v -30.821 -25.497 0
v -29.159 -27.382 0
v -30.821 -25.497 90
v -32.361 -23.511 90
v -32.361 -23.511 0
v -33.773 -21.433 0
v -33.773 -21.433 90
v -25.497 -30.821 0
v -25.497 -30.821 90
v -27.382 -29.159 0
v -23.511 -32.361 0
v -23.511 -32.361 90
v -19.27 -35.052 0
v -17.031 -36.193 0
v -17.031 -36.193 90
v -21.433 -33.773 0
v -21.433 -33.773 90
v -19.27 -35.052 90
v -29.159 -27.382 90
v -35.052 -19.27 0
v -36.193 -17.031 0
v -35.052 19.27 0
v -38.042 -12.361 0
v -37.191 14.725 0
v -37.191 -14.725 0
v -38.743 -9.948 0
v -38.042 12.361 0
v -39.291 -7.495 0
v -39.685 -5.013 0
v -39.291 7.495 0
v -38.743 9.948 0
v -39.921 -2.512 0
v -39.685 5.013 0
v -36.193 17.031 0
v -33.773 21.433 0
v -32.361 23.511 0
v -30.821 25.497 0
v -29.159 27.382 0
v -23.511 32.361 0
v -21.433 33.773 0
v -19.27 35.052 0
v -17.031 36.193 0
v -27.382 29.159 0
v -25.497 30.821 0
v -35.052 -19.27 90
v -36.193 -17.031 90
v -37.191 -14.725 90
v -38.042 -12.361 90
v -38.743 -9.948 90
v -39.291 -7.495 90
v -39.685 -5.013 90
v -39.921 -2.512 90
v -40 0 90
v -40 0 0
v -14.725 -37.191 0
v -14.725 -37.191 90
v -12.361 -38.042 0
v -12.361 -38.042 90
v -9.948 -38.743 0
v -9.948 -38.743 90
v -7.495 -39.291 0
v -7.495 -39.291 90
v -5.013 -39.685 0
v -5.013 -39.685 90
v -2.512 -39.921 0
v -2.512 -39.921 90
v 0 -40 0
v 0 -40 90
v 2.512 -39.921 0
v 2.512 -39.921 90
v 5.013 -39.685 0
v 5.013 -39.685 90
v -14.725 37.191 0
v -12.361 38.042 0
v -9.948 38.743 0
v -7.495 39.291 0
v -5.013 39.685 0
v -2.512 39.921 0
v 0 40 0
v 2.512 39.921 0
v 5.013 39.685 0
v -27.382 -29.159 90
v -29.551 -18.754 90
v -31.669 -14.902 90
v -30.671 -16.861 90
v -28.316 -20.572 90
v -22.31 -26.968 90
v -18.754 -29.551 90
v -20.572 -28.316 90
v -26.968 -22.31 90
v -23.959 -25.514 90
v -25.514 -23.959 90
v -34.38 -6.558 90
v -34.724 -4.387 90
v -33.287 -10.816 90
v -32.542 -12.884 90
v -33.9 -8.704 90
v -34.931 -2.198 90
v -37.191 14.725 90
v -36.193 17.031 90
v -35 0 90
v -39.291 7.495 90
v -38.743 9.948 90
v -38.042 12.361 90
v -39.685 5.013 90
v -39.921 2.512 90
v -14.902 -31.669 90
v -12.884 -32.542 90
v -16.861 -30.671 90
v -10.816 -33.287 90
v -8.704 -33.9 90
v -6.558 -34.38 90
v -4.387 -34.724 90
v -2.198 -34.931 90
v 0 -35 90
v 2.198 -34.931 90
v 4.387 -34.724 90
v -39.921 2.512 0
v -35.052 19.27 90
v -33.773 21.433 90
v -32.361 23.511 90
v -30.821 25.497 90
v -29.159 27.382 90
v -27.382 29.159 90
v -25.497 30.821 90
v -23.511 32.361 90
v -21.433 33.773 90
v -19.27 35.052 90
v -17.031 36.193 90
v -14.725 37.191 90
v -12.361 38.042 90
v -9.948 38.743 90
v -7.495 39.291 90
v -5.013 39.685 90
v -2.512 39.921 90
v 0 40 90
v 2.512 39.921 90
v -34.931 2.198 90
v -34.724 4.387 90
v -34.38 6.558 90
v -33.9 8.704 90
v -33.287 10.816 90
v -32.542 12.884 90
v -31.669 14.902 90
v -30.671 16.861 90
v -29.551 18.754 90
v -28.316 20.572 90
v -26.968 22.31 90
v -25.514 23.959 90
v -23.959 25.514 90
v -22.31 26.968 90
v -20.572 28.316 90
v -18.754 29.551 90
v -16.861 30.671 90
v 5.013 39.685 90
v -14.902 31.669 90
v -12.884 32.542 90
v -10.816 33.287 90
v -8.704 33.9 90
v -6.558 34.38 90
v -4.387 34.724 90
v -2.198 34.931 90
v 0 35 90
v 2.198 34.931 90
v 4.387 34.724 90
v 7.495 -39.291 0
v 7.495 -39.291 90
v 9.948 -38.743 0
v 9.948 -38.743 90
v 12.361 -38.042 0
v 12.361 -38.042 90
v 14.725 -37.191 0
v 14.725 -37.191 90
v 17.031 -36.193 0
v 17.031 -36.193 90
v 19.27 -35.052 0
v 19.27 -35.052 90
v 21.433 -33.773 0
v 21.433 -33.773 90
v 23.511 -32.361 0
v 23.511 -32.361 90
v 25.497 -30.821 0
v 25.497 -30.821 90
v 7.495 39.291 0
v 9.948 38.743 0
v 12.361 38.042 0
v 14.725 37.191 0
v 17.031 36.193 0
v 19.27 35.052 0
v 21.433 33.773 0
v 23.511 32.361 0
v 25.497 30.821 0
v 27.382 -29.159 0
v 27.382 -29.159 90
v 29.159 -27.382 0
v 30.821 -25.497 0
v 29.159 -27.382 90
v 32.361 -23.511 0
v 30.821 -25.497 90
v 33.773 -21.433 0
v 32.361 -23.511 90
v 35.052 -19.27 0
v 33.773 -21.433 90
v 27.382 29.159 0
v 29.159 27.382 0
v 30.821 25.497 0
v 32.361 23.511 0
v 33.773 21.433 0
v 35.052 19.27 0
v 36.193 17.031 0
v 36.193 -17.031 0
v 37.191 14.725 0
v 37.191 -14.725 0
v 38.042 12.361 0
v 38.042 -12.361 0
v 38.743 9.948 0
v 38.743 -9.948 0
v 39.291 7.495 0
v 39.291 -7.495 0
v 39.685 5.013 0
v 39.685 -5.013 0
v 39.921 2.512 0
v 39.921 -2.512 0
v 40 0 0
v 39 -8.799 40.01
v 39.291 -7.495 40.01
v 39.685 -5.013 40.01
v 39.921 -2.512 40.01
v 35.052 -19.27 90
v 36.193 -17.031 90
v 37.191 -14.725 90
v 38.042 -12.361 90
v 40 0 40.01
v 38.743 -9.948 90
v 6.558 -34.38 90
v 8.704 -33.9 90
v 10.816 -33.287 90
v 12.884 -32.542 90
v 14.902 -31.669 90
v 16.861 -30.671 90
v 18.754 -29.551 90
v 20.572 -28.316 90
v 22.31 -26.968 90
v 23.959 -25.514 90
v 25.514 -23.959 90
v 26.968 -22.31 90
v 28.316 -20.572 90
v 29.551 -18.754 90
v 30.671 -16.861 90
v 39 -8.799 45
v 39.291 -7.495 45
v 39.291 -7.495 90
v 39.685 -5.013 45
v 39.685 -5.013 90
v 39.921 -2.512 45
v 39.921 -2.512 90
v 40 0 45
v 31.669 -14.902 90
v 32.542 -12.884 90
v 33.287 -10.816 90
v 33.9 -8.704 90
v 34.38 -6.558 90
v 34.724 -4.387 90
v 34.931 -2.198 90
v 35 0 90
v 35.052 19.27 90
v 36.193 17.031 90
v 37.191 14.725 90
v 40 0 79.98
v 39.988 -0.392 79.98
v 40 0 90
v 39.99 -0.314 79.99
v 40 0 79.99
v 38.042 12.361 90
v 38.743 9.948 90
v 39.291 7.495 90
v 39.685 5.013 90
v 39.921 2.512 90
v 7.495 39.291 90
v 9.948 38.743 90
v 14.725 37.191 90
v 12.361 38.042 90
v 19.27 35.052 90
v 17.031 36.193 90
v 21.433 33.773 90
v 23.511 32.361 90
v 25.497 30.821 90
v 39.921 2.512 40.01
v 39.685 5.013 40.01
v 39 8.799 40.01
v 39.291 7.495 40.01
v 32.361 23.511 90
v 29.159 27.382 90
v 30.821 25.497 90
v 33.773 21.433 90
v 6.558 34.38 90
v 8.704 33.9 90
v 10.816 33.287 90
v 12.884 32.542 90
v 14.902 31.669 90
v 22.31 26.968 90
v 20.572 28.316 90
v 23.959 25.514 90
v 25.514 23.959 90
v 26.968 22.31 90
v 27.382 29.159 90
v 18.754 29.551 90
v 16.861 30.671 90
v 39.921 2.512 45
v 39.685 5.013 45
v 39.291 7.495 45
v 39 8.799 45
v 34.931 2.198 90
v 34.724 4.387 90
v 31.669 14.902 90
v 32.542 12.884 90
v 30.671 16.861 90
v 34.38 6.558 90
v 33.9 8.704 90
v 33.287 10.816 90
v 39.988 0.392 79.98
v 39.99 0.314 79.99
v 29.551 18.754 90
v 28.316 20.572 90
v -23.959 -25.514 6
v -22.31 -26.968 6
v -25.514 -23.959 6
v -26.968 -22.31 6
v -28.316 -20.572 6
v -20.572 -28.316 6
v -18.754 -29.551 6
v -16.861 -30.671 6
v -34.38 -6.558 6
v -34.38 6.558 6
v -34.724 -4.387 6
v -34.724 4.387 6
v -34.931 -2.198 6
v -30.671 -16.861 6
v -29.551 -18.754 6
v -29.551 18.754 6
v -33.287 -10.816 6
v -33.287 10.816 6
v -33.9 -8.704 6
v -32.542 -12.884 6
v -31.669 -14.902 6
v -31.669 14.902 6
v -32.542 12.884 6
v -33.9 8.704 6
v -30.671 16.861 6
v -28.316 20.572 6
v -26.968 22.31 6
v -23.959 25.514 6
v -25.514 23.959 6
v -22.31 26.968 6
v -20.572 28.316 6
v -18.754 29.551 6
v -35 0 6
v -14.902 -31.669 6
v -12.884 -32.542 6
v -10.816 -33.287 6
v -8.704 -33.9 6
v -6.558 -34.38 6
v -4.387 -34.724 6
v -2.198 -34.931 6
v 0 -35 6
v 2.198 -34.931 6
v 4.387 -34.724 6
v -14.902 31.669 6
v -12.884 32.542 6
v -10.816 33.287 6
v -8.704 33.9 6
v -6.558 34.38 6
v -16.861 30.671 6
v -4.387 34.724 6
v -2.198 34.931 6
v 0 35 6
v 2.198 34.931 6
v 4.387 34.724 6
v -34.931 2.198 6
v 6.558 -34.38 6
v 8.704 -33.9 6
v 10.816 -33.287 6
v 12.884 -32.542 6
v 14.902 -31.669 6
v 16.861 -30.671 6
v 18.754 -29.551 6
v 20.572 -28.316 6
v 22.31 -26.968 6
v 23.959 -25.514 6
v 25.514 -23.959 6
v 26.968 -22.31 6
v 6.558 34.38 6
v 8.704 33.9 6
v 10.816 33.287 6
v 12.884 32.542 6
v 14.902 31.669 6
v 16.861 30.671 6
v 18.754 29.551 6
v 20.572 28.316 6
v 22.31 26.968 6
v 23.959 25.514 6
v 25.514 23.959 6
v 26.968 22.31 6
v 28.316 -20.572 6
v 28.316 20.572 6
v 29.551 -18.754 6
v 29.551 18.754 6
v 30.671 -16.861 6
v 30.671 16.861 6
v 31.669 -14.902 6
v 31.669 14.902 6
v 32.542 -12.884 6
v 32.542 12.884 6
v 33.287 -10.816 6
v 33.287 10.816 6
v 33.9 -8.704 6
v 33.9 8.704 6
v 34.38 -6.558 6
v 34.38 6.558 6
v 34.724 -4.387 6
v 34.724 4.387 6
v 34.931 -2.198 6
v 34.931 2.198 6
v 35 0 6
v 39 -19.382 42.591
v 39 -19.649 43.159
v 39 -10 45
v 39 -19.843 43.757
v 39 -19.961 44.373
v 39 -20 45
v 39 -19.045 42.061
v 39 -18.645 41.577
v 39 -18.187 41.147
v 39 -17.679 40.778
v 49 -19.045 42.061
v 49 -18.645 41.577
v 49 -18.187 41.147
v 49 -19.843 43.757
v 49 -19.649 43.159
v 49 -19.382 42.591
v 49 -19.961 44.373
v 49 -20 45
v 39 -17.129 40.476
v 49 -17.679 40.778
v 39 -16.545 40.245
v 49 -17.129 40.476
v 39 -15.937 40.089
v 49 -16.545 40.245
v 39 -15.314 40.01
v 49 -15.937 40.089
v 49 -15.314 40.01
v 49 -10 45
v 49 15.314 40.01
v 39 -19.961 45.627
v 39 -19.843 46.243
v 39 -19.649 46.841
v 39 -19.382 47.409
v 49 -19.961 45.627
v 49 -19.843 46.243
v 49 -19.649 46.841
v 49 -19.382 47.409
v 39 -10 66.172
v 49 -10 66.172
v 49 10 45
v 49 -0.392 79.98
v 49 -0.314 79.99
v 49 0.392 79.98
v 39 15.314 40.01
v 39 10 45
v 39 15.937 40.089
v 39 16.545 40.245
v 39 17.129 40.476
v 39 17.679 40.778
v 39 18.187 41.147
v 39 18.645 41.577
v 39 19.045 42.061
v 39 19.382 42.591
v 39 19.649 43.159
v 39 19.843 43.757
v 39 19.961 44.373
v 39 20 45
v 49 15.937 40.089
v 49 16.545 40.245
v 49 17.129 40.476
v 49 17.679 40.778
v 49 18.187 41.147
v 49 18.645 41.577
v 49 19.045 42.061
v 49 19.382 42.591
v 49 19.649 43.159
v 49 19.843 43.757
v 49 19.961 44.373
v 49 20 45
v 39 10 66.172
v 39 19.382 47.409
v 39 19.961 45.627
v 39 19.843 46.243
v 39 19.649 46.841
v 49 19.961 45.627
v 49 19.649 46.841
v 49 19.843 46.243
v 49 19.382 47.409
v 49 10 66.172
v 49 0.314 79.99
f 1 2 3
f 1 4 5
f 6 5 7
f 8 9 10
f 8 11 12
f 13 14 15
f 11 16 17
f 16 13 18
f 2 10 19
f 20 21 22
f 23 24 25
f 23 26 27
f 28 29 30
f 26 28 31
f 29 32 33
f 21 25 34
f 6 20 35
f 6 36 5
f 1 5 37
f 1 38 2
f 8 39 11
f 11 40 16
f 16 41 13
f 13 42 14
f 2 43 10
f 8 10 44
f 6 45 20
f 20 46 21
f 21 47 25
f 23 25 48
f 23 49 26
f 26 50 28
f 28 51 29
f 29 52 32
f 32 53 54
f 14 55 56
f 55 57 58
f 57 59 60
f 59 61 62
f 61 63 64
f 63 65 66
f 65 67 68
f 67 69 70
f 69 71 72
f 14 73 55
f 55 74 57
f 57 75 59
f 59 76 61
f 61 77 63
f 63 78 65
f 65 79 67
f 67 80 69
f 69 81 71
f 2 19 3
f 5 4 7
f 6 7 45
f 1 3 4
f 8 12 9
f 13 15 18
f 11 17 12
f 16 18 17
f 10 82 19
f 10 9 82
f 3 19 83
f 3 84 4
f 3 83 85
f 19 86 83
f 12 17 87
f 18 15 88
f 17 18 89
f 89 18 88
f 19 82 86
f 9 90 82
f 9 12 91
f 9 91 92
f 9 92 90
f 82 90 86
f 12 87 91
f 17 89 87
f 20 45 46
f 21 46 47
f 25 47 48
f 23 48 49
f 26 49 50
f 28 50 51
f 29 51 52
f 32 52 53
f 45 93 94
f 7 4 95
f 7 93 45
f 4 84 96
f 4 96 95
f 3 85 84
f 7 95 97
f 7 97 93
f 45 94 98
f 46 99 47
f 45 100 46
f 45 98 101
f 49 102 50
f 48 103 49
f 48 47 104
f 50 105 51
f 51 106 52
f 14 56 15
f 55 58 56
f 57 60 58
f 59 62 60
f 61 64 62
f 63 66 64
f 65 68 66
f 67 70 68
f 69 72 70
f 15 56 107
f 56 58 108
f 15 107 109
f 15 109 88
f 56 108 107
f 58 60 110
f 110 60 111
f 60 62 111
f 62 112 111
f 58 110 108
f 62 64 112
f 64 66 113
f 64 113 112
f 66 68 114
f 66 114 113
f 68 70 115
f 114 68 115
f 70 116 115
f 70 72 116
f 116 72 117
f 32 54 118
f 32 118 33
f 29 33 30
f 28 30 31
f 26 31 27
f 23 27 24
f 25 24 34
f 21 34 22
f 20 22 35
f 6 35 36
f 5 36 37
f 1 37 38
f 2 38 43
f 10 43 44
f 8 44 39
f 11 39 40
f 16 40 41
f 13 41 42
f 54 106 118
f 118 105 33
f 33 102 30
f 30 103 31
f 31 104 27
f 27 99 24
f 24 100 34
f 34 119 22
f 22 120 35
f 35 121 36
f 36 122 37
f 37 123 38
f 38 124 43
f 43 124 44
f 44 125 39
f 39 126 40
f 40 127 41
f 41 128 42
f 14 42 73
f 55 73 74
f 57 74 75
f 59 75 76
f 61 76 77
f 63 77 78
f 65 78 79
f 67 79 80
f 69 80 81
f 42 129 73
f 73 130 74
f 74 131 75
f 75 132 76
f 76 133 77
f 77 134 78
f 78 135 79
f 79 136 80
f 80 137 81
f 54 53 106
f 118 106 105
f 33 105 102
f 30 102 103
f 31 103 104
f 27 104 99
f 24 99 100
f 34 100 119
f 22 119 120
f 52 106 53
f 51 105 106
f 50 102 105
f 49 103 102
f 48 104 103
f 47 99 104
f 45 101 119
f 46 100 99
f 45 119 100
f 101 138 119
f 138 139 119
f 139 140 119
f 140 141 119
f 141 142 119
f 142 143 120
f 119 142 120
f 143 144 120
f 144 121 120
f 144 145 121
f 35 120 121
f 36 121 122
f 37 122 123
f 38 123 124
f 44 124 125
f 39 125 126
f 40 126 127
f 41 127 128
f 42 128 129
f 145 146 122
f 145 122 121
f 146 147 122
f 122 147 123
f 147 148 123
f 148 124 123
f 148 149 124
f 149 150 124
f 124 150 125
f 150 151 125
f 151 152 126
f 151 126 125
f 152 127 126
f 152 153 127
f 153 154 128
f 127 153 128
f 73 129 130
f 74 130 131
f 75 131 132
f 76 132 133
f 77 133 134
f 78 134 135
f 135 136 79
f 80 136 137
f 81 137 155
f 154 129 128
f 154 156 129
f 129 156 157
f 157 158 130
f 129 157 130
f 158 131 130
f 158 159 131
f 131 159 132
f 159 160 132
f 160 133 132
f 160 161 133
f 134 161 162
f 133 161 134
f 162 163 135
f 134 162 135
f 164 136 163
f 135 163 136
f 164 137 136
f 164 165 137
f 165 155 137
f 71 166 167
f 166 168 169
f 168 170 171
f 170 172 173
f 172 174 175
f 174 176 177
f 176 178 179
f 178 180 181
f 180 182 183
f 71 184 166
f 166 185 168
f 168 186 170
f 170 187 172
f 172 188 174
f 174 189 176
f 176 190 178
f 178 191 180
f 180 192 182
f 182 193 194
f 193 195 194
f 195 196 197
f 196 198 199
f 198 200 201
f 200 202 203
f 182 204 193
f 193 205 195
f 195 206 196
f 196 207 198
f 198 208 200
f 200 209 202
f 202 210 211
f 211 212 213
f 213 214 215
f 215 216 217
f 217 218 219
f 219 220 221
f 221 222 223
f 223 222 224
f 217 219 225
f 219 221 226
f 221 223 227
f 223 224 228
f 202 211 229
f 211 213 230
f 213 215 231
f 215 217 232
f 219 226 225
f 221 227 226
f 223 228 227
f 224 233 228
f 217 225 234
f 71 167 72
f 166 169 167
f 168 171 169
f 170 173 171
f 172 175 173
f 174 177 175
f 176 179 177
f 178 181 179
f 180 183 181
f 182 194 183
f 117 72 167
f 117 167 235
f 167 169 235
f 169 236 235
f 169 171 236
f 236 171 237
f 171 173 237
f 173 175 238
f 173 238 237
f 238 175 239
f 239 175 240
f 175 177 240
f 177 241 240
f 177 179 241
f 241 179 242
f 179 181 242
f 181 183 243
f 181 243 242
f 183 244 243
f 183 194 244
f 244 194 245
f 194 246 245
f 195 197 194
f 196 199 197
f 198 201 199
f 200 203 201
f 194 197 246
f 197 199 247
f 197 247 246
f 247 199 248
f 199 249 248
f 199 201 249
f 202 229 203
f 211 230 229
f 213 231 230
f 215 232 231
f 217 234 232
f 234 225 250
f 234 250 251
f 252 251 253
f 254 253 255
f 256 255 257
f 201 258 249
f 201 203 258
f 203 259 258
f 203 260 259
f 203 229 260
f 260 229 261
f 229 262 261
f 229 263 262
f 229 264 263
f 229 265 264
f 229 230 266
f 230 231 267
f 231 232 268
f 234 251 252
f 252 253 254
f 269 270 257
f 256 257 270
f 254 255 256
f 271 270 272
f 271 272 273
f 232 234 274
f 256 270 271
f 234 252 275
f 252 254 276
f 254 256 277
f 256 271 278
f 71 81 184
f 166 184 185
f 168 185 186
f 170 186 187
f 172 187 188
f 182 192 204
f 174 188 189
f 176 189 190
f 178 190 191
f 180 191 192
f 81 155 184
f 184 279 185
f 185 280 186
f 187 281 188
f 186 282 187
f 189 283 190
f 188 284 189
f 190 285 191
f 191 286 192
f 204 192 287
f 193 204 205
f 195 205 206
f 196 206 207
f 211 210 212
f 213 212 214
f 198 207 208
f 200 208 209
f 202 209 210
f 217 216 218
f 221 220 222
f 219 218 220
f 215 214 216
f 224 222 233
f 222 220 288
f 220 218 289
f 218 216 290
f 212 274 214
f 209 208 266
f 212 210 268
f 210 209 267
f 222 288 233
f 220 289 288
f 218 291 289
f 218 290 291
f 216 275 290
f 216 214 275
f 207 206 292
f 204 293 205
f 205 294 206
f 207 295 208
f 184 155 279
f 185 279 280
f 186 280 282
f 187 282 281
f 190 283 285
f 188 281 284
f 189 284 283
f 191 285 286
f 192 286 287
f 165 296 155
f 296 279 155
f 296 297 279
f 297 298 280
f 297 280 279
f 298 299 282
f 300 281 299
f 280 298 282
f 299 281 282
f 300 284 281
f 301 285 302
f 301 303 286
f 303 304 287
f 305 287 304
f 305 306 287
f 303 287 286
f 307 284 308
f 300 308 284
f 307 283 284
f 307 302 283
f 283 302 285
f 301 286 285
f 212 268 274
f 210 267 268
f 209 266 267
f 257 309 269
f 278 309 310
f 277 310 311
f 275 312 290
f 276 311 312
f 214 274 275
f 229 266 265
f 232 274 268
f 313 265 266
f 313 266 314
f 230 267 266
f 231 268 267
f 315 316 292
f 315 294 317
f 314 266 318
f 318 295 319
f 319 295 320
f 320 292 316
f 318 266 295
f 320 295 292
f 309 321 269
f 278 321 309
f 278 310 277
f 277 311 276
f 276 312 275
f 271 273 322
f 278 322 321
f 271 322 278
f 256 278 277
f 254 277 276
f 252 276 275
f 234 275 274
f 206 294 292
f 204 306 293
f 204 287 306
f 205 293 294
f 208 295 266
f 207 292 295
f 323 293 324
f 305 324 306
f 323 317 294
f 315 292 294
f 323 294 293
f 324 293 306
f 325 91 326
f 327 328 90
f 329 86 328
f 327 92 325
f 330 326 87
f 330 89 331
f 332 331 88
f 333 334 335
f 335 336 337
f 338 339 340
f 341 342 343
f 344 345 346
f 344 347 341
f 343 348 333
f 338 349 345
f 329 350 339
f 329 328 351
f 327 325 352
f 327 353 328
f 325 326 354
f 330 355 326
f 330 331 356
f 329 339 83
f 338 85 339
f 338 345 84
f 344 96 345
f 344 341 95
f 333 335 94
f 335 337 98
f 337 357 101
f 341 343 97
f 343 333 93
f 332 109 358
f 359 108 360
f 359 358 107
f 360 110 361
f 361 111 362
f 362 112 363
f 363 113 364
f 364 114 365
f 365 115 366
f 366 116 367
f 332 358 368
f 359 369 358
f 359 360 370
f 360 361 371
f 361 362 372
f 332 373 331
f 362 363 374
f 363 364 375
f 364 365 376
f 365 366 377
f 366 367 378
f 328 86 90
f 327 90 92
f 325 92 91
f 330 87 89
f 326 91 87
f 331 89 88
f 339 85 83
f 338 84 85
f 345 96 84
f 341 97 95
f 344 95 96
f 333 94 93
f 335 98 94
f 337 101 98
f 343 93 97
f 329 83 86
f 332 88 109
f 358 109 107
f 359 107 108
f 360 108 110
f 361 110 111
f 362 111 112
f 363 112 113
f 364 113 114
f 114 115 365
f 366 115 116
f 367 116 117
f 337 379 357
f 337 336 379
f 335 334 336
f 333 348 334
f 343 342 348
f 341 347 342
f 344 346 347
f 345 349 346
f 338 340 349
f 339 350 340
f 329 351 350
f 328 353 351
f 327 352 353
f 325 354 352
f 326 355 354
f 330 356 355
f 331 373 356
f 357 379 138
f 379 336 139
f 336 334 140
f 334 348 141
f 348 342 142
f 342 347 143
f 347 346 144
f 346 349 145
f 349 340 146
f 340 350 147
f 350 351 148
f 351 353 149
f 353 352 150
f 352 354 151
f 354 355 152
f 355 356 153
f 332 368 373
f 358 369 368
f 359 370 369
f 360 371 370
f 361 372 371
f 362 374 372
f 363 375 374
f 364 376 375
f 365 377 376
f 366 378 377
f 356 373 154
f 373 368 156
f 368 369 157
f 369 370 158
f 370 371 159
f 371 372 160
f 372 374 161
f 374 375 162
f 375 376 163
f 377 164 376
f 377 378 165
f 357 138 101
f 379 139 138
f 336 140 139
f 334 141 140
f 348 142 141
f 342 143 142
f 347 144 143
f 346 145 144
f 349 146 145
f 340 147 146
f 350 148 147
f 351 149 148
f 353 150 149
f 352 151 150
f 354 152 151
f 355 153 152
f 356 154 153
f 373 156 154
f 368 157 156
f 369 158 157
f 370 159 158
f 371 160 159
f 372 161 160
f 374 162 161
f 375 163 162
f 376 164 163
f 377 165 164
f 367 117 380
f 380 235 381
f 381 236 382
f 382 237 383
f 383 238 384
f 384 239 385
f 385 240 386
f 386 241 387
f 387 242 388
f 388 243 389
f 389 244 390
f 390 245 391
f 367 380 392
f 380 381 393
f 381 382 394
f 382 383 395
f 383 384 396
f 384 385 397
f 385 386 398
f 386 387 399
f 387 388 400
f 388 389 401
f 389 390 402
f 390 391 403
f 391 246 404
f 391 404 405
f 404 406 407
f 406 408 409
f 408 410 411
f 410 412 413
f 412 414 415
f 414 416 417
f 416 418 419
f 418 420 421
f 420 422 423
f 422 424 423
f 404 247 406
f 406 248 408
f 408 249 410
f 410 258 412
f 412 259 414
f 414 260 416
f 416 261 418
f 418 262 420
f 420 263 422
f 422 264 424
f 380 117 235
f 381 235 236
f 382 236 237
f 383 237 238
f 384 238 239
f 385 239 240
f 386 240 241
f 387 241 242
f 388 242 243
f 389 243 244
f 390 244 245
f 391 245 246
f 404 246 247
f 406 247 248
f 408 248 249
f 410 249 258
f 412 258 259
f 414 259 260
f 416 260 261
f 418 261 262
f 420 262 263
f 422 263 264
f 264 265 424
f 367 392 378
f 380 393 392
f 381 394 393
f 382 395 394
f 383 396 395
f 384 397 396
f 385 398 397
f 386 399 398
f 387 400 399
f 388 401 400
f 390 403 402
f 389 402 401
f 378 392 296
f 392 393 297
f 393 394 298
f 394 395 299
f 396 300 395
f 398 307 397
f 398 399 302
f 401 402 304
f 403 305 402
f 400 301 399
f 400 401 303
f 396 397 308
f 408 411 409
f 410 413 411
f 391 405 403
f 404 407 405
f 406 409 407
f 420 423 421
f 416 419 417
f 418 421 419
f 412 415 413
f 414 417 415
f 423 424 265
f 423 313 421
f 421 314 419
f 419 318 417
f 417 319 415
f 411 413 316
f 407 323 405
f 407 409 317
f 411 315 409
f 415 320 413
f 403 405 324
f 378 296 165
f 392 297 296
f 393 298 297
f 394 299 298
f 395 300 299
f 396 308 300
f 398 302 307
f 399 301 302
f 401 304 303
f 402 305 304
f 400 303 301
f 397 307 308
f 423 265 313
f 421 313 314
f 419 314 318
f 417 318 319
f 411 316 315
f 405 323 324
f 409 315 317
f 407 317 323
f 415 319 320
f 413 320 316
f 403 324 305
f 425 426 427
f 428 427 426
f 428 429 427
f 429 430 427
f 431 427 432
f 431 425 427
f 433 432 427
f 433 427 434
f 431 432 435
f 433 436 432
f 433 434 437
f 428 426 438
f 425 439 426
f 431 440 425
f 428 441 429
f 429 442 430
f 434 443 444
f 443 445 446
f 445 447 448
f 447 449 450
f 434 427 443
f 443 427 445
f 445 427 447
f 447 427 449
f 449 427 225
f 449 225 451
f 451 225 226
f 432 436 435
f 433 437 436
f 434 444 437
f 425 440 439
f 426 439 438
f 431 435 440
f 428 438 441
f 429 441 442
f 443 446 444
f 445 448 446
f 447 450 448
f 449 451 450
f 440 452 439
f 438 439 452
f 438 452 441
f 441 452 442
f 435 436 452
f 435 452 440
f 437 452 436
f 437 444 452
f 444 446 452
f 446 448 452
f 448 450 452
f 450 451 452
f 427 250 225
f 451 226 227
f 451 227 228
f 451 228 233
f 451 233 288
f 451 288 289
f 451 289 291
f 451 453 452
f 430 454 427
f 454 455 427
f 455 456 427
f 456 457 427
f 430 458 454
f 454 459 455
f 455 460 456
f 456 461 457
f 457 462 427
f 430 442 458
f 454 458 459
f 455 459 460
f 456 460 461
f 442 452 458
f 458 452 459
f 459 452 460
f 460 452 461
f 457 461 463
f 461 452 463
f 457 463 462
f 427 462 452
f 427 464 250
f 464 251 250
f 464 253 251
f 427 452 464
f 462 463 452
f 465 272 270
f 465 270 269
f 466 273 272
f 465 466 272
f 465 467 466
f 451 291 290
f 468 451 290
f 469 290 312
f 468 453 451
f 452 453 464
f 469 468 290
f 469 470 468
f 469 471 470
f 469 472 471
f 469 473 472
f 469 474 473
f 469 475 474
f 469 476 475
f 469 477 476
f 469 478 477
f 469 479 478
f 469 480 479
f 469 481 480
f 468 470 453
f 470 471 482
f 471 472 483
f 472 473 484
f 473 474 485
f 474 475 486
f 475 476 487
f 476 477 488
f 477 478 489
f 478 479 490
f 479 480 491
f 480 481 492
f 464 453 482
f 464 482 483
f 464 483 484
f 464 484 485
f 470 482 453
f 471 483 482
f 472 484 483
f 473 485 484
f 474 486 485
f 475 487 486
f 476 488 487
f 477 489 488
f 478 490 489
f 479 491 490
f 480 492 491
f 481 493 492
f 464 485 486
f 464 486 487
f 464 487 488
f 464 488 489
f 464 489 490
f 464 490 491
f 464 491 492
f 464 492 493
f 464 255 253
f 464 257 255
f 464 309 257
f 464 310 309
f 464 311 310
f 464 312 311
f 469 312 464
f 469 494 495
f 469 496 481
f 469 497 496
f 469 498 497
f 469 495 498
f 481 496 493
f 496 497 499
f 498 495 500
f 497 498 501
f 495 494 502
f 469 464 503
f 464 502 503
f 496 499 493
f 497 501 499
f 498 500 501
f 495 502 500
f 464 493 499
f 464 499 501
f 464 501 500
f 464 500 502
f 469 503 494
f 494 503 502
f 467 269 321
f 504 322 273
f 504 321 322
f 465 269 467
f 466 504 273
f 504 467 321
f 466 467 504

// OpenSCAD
// マグカップのパラメータ
outer_d = 80;
inner_d = 70;
height = 90;
bottom_thickness = 6;

// 取手のパラメータ
handle_inner_h = 30; // 内側の高さ
handle_inner_w = 25; // 本体から外側への張り出し
handle_thick = 10;   // 取手の肉厚

module mug() {
    union() {
        // マグ本体
        difference() {
            cylinder(d = outer_d, h = height, $fn = 100);
            translate([0, 0, bottom_thickness])
                cylinder(d = inner_d, h = height - bottom_thickness + 0.1, $fn = 100);
        }

        // 取手
        // 本体外径（半径40mm）に接触させるため、X軸方向に配置
        // D字形状：本体側が直線、外側が半円
        translate([outer_d / 2 - 1, 0, height / 2]) {
            rotate([0, 90, 0]) {
                rotate([0, 0, 90]) {
                    linear_extrude(height = handle_thick) {
                        difference() {
                            // 取手の外形
                            hull() {
                                translate([-handle_inner_h / 2, 0]) circle(d = handle_thick, $fn = 50);
                                translate([handle_inner_h / 2, 0]) circle(d = handle_thick, $fn = 50);
                                translate([0, handle_inner_w + handle_thick / 2]) circle(d = handle_thick, $fn = 50);
                            }
                            // 取手の内側の穴
                            hull() {
                                translate([-handle_inner_h / 2 + (handle_thick/2), 0]) square([handle_inner_h - handle_thick, 0.1]);
                                translate([0, handle_inner_w]) circle(d = handle_inner_h - handle_thick, $fn = 50);
                            }
                        }
                    }
                }
            }
        }
    }
}

mug();
